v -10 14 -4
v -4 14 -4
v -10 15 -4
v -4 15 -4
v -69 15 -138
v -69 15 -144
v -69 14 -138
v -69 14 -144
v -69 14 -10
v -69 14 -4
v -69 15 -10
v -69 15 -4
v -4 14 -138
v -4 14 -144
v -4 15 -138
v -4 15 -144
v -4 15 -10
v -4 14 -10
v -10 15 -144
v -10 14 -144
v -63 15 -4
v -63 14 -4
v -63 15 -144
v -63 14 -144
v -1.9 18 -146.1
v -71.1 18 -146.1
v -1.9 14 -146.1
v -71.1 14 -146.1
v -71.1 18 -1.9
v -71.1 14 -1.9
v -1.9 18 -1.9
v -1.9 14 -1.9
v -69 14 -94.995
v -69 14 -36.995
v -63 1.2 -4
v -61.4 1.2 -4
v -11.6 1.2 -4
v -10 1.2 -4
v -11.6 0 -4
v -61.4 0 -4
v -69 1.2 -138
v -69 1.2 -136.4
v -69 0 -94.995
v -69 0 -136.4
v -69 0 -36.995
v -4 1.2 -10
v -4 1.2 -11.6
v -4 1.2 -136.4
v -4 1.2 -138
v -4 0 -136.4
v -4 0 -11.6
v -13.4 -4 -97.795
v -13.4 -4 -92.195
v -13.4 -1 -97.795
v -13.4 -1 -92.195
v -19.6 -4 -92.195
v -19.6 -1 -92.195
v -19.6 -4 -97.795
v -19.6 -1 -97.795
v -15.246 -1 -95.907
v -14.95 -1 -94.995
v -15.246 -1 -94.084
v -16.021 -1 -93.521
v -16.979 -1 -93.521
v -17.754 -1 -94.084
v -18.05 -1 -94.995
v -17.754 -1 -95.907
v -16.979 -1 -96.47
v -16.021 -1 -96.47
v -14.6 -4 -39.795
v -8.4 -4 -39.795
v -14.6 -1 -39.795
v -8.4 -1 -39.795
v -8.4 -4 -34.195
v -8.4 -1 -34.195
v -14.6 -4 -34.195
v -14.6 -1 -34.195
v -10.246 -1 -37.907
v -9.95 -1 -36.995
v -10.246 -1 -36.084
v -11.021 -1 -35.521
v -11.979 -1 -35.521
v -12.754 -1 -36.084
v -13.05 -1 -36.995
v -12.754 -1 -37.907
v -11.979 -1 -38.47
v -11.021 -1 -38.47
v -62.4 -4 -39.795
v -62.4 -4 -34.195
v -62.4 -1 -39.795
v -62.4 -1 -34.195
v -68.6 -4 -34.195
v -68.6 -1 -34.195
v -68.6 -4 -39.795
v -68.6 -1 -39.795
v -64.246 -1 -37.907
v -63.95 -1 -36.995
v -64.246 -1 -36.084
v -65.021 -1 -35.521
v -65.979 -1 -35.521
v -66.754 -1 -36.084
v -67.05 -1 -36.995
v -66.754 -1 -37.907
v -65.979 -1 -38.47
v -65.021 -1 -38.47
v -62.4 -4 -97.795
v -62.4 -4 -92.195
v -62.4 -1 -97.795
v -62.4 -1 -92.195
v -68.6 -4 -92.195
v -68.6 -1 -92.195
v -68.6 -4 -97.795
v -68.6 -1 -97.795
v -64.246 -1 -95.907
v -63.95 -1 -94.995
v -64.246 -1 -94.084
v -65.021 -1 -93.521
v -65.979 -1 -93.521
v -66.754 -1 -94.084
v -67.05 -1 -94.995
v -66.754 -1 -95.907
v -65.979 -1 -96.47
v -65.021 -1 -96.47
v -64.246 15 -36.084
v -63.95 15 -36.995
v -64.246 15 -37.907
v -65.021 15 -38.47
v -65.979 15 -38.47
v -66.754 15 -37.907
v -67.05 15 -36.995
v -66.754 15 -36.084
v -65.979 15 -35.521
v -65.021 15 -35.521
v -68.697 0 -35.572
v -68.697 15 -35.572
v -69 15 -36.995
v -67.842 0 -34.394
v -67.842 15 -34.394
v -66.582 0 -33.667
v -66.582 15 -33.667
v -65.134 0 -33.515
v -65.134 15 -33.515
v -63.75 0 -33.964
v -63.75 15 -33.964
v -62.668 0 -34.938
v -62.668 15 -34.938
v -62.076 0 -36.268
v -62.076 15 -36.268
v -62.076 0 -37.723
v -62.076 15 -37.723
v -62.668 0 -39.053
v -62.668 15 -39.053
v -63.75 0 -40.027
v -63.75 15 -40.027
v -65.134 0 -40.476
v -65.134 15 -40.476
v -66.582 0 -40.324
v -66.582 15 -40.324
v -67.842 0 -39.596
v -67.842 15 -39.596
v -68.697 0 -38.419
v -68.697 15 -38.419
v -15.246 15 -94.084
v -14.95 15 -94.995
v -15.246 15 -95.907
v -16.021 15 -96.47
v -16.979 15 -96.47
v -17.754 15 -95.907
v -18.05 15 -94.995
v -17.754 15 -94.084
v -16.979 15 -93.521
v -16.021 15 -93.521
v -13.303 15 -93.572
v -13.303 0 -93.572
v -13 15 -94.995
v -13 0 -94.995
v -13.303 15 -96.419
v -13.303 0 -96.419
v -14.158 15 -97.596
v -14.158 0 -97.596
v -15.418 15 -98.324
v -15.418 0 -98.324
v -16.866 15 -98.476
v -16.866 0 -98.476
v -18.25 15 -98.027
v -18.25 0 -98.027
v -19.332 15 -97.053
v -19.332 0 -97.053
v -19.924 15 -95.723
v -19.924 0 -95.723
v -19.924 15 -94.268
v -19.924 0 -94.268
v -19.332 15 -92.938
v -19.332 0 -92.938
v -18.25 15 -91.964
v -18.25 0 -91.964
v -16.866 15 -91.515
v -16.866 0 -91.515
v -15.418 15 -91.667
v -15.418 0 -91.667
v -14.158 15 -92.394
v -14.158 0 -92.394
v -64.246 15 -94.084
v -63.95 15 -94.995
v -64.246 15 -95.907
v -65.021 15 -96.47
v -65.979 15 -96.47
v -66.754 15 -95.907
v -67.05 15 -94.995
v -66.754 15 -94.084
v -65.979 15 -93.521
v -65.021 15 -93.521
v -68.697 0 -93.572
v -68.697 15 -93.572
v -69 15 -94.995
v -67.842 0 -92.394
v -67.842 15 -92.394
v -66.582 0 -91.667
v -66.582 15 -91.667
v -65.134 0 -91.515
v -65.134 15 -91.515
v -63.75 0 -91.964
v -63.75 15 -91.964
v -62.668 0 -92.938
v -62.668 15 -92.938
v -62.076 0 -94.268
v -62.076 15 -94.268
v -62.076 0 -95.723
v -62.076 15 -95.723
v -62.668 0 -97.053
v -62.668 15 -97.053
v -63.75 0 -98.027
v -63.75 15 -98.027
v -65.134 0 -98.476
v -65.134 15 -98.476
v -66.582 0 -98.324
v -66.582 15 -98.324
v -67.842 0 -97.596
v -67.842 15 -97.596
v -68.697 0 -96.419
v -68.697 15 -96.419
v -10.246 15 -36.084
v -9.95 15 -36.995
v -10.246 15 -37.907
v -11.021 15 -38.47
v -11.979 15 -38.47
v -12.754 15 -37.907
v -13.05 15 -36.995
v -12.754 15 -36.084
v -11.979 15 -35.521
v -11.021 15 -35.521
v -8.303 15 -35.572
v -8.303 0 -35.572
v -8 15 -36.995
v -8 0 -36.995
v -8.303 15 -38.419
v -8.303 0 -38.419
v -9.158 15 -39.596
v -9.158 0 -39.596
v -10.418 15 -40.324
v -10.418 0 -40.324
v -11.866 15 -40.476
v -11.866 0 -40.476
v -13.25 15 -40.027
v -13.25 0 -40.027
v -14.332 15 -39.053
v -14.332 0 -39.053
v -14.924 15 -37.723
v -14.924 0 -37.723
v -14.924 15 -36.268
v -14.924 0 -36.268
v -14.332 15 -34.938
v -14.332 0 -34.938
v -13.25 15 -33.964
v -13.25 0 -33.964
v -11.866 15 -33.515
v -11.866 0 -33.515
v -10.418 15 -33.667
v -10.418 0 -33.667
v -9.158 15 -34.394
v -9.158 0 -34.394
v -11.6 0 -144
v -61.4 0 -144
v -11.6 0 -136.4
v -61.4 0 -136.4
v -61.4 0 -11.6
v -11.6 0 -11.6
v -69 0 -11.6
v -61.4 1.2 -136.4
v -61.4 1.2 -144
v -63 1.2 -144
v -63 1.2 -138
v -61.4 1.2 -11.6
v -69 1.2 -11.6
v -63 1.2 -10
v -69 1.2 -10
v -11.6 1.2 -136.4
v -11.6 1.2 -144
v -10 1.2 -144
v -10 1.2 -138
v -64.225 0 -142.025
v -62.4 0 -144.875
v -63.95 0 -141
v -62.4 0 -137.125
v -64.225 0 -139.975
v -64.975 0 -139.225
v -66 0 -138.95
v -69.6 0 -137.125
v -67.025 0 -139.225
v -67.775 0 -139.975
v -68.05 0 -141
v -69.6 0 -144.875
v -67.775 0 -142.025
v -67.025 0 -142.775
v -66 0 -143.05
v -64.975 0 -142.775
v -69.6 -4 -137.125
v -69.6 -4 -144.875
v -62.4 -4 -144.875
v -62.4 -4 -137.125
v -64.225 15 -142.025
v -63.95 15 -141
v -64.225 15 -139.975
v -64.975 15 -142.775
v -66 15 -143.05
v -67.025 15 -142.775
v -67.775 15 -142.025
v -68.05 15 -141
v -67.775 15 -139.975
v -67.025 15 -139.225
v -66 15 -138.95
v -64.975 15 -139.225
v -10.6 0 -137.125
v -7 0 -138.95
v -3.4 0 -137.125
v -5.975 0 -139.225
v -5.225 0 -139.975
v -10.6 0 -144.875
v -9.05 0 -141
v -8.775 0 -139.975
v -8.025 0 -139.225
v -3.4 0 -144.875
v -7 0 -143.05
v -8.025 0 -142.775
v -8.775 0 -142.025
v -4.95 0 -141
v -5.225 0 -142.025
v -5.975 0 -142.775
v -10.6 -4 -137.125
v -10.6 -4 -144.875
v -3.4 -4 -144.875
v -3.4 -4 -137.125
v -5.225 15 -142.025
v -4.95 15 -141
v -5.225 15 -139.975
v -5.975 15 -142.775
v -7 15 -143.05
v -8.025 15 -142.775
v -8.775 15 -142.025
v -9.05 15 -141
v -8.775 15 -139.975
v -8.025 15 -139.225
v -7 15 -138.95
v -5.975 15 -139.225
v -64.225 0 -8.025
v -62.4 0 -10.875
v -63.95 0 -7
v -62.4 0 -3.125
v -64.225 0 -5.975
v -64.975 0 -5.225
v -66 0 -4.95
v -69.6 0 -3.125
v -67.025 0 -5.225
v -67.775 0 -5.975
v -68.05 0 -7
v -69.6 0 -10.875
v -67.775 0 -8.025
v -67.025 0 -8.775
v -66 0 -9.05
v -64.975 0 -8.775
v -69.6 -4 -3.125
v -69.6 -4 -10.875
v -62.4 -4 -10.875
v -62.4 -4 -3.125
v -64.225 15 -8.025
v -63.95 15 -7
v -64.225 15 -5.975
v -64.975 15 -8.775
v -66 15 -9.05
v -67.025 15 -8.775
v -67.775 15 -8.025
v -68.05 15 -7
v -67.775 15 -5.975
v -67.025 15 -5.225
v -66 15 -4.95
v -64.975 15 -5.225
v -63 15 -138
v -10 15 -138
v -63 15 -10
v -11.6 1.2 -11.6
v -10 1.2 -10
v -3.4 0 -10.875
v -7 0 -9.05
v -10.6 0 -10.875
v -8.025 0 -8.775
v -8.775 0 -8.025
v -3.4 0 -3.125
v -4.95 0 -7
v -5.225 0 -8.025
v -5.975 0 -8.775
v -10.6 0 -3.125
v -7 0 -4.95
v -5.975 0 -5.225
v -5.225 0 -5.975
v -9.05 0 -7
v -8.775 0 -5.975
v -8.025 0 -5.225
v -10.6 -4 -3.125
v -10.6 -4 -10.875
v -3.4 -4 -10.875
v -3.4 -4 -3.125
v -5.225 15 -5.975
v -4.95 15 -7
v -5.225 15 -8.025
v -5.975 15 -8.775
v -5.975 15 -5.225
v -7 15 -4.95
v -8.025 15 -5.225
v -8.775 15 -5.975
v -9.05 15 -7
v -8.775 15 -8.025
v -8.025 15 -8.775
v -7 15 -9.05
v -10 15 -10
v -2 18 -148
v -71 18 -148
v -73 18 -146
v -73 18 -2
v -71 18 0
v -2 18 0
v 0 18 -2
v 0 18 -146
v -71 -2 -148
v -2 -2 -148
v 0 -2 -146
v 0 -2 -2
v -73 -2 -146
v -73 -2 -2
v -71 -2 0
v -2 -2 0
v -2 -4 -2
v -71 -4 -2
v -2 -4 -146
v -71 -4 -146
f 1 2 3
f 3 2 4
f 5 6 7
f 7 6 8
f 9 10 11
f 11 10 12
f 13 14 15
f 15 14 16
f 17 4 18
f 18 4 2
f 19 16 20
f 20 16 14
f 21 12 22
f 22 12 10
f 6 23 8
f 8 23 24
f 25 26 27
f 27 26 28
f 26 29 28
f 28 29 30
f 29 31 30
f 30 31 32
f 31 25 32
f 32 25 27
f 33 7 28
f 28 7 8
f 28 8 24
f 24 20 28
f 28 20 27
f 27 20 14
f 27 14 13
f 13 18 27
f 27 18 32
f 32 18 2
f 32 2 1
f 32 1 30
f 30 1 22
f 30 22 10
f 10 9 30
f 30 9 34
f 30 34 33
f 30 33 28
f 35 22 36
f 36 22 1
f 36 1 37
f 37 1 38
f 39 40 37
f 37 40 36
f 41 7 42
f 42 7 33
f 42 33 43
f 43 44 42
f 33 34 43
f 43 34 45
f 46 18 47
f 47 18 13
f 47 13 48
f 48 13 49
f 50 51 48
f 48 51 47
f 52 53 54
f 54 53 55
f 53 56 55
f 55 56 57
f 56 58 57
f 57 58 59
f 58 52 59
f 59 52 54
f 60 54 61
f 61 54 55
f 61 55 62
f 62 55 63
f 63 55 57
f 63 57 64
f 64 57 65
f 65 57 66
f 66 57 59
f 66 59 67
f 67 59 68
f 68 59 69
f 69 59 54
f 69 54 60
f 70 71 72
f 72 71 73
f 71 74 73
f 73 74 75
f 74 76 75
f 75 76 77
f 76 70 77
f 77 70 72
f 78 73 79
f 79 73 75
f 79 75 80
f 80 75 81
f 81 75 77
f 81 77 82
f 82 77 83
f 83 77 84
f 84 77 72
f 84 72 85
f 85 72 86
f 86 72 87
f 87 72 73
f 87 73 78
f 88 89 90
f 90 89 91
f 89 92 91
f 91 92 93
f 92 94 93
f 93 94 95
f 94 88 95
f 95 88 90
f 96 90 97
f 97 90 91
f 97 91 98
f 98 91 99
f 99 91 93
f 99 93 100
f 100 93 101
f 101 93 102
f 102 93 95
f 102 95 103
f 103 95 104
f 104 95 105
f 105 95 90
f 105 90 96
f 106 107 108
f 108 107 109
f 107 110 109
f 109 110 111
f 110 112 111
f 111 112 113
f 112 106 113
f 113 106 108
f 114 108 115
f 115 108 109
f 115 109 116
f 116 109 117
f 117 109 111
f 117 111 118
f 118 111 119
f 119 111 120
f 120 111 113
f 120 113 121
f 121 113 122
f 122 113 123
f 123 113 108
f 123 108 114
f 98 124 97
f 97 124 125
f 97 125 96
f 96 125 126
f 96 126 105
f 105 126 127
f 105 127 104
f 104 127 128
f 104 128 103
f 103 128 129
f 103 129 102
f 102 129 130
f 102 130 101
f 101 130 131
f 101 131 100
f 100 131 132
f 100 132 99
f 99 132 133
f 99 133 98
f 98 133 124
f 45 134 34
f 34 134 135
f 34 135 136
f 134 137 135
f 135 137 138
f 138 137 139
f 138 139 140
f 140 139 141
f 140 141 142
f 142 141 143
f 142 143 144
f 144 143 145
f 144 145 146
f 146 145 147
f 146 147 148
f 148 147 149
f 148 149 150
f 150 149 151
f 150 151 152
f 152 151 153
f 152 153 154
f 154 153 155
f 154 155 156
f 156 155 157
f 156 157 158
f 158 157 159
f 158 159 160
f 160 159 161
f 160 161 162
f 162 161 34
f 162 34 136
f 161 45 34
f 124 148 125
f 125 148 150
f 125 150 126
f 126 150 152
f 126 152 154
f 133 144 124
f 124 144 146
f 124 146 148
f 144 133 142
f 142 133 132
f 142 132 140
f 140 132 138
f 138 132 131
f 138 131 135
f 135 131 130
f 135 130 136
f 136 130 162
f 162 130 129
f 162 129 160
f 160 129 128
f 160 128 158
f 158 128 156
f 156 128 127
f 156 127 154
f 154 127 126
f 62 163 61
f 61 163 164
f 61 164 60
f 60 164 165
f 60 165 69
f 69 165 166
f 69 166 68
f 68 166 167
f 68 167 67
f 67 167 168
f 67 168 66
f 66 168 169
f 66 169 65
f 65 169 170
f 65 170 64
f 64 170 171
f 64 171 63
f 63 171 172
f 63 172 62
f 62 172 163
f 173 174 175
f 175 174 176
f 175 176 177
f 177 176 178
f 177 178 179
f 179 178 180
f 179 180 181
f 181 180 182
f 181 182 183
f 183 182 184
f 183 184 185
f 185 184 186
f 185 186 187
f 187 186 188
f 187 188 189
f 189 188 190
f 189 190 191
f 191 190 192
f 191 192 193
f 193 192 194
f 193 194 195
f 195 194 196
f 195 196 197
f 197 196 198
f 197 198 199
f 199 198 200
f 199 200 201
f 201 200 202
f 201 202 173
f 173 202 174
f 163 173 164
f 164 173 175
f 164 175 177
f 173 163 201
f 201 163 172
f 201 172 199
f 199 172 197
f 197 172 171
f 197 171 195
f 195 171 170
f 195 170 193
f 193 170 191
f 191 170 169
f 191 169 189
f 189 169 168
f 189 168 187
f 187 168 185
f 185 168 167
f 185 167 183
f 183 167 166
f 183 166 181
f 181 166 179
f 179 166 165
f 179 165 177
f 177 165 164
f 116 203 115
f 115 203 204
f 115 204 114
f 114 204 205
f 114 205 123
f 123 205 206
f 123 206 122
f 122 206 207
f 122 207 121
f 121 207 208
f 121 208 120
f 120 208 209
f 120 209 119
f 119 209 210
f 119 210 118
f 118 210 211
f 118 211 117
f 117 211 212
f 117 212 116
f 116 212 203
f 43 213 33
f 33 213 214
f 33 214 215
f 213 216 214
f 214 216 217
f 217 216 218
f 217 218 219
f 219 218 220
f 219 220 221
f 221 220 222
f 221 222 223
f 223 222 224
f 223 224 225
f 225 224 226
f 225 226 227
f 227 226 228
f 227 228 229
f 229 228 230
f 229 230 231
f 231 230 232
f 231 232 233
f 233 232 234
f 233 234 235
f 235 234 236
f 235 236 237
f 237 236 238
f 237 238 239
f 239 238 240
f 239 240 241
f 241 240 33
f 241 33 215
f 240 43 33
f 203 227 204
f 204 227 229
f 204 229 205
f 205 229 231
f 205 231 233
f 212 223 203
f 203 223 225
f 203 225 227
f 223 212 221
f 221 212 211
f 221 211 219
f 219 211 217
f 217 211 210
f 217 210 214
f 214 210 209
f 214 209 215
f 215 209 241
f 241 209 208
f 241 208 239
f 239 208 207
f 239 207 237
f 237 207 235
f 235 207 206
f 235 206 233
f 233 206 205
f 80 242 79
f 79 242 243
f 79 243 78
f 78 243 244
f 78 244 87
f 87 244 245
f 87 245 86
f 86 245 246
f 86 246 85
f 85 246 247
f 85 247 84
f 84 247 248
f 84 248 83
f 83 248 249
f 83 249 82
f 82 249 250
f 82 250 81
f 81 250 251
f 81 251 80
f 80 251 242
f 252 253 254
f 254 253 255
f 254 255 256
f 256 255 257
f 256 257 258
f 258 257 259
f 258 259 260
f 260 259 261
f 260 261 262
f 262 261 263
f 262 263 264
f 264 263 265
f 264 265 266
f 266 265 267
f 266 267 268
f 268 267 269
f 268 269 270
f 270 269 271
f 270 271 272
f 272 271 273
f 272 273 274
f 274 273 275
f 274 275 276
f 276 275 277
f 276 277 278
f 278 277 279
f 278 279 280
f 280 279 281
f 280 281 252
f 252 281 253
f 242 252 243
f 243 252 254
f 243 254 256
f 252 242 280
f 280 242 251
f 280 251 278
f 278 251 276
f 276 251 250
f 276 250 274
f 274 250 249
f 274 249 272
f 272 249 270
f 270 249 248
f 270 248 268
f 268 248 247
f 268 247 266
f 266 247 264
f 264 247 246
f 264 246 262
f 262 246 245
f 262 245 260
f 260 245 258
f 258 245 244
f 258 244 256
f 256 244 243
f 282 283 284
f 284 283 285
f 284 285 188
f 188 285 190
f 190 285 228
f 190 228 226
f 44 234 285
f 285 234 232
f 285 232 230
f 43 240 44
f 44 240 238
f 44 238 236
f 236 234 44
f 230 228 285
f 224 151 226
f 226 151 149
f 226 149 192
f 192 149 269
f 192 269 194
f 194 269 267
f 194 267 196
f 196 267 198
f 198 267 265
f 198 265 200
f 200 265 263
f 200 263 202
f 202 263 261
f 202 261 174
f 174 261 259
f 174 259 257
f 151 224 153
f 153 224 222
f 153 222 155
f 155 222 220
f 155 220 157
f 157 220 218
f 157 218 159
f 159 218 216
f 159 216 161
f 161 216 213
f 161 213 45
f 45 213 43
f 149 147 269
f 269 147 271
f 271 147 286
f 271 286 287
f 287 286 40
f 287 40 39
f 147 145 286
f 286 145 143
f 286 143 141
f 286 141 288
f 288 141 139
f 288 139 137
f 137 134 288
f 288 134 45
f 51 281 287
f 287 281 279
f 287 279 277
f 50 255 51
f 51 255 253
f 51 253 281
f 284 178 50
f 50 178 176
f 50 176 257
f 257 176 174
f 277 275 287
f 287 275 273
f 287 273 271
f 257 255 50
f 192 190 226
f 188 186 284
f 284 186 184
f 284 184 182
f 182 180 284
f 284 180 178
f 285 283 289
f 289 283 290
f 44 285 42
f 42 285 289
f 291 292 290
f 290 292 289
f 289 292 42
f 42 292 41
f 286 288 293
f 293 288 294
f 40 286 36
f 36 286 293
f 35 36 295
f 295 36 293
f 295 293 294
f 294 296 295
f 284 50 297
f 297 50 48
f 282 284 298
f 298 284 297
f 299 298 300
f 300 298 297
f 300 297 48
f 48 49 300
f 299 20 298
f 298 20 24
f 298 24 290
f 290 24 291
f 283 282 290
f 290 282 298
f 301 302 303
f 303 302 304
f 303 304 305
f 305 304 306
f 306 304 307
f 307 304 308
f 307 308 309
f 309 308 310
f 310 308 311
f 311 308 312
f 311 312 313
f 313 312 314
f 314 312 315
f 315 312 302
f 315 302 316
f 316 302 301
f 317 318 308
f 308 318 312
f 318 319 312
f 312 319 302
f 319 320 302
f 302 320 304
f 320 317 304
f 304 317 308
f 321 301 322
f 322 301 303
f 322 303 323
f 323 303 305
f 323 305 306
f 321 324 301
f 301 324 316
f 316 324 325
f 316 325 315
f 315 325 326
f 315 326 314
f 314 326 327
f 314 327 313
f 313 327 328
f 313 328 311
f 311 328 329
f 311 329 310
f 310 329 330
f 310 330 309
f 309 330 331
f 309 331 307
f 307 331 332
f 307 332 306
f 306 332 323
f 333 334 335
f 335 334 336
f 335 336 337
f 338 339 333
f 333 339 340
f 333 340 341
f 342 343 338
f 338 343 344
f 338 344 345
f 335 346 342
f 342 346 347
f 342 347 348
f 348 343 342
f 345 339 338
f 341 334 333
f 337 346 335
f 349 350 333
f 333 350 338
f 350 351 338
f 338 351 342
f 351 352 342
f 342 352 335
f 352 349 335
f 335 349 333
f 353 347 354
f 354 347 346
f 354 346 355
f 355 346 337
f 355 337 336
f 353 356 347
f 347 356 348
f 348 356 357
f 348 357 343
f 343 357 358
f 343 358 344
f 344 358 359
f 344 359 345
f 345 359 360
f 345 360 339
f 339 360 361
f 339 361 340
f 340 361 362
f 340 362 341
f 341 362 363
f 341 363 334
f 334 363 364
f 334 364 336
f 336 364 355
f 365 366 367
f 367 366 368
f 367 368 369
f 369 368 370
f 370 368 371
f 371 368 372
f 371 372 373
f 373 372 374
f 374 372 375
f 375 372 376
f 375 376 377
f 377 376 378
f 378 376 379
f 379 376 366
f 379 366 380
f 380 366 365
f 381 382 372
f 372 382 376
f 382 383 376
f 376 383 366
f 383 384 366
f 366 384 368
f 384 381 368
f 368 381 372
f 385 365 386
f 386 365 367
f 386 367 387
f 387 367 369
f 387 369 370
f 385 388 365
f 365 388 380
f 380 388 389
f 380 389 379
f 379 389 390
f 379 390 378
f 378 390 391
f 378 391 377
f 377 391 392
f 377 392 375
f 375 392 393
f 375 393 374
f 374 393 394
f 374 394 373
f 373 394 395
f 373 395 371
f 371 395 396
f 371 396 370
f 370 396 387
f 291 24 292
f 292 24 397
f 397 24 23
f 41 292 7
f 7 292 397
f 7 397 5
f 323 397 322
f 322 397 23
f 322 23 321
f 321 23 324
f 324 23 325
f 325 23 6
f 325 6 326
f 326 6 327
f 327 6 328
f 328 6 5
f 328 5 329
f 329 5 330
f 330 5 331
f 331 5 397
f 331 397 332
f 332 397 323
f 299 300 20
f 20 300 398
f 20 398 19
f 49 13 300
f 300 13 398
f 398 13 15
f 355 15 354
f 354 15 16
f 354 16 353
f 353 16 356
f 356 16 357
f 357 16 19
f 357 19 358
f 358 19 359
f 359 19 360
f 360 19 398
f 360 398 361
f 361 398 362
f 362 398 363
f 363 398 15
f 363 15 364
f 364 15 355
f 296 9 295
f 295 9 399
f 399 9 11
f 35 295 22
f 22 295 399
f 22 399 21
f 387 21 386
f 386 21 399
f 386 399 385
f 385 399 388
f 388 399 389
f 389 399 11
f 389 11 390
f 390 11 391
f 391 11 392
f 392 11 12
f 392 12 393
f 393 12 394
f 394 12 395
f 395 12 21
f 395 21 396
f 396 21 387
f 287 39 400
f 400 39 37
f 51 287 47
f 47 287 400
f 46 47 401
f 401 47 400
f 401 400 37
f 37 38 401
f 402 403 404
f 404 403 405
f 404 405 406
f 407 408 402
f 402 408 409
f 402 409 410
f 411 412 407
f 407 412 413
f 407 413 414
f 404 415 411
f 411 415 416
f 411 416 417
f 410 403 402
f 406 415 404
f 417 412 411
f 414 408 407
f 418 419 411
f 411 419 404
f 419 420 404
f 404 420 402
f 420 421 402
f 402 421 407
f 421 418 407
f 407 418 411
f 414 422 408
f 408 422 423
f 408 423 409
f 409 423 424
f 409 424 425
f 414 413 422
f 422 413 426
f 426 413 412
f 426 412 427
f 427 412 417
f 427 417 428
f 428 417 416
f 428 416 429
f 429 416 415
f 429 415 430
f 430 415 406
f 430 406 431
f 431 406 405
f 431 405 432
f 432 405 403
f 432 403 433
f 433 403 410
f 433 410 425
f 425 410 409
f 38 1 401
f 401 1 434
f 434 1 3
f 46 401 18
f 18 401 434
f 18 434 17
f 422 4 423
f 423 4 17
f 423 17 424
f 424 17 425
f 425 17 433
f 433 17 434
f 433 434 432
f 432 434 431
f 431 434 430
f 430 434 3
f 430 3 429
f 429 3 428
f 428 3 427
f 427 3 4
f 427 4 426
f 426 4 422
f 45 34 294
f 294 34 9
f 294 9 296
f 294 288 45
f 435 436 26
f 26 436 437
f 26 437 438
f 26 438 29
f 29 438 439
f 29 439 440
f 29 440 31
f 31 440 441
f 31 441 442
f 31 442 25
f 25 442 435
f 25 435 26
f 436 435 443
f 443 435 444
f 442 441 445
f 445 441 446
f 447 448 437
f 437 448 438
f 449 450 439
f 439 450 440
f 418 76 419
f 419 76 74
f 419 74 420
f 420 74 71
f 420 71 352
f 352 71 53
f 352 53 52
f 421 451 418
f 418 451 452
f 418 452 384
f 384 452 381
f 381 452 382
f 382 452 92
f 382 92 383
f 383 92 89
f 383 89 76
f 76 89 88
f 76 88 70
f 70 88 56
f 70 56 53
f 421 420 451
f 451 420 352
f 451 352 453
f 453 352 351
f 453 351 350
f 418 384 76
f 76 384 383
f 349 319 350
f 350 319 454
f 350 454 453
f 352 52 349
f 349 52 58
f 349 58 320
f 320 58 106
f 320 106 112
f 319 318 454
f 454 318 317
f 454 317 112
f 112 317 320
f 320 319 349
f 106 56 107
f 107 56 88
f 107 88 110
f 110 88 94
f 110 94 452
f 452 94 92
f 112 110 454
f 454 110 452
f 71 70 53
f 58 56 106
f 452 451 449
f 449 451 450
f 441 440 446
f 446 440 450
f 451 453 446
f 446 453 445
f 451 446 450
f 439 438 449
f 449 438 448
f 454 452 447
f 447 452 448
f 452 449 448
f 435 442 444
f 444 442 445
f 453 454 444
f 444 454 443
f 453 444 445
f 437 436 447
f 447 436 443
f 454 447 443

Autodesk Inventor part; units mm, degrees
ref_plane "YZ Plane" through (0, 0, 0) normal (1, 0, 0) x (0, 1, 0)
ref_plane "XZ Plane" through (0, 0, 0) normal (0, 1, 0) x (-1, 0, 0)
ref_plane "XY Plane" through (0, 0, 0) normal (0, 0, 1) x (1, 0, 0)
sketch "Sketch1" plane through (0, 0, 0) normal (0, 1, 0) x (-1, 0, 0)
  line L0 (0, 0) -> (73, 0)
  line L1 (73, 0) -> (73, -148)
  line L2 (73, -148) -> (0, -148)
  line L3 (0, -148) -> (0, 0)
  dimension "d0" = 73
  dimension "d1" = 148
extrude "Extrusion1" add sketch "Sketch1" against normal blind 4
sketch "Sketch2" plane through (0, 0, 0) normal (0, 1, 0) x (1, 0, 0)
  line L0 (-73, 148) -> (0, 148) projected
  line L1 (0, 148) -> (0, 0) projected
  line L2 (0, 148) -> (0, 0)
  line L3 (0, 0) -> (-73, 0) projected
  line L4 (0, 0) -> (-73, 0)
  line L5 (-73, 0) -> (-73, 148)
  line L6 (0, 148) -> (0, 144) construction
  line L7 (0, 148) -> (0, 0) construction
  line L8 (0, 144) -> (-4, 144) construction
  line L9 (-4, 144) -> (-69, 144)
  line L10 (-69, 144) -> (-69, 4)
  line L11 (-69, 4) -> (-4, 4)
  line L12 (-4, 4) -> (-4, 144)
  dimension "d4" = 4
  dimension "d5" = 4
  dimension "d6" = 90
  dimension "d7" = 65
  dimension "d8" = 140
extrude "Extrusion2" add sketch "Sketch2" along normal blind 18
sketch "Sketch4" plane through (0, 0, 0) normal (0, 1, 0) x (1, 0, 0)
  line L0 (-4, 4) -> (-4, 144) projected
  line L1 (-4, 4) -> (-10, 4)
  line L2 (-10, 4) -> (-10, 10)
  line L3 (-10, 10) -> (-4, 10)
  line L4 (-4, 10) -> (-4, 4)
  point P0 (0, 0)
  dimension "d17" = 6
  dimension "d18" = 6
extrude "Extrusion4" add sketch "Sketch4" along normal blind 15
sketch "Sketch9" plane through (0, -4, 0) normal (0, -1, 0) x (1, 0, 0)
  line L0 (0, 0) -> (0, -148) construction
  line L1 (0, 0) -> (-7, 0) construction
  line L2 (0, 0) -> (-73, 0) construction
  line L3 (-7, 0) -> (-7, -7) construction
  circle A0 centre (-7, -7) radius 2.05
  dimension "d60" = 7
  dimension "d61" = 7
  dimension "d62" = 4.1
extrude "Extrusion10" cut sketch "Sketch9" against normal blind 20
sketch "Sketch10" plane through (0, -4, 0) normal (0, -1, 0) x (1, 0, 0)
  circle A0 centre (-7, -7) radius 2.05 construction
  line L0 (-7, -7) -> (-7, 0) construction
  line L1 (0, 0) -> (-73, 0) construction
  line L2 (-7, -7) -> (-10.6, -7) construction
  line L3 (-7, -7) -> (-3.4, -7) construction
  line L4 (-7, -7) -> (-7, -10.875) construction
  line L5 (-7, -7) -> (-7, -3.125) construction
  line L6 (-7, -3.125) -> (-10.6, -3.125)
  line L7 (-10.6, -3.125) -> (-10.6, -10.875)
  line L8 (-10.6, -10.875) -> (-3.4, -10.875)
  line L9 (-3.4, -10.875) -> (-3.4, -3.125)
  line L10 (-3.4, -3.125) -> (-7, -3.125)
  dimension "d65" = 3.6
  dimension "d66" = 3.6
  dimension "d67" = 3.875
  dimension "d68" = 3.875
  dimension "d69" = 7.75
  dimension "d70" = 7.2
extrude "Extrusion11" cut sketch "Sketch10" against normal blind 4
sketch "Sketch11" plane through (0, 0, 0) normal (0, 1, 0) x (1, 0, 0)
  line L0 (-10, 10) -> (-10, 4) projected
  line L1 (-10, 4) -> (-11.6, 4)
  line L2 (-69, 4) -> (-10, 4) projected
  line L3 (-11.6, 4) -> (-11.6, 11.6)
  line L4 (-11.6, 4) -> (-4, 4) construction
  line L5 (-11.6, 11.6) -> (-4, 11.6)
  line L6 (-4, 10.875) -> (-4, 144) projected
  line L7 (-4, 10) -> (-10, 10)
  line L8 (-10, 4) -> (-10, 10)
  line L9 (-10, 10) -> (-4, 10) projected
  line L10 (-4, 10) -> (-4, 11.6)
  point P0 (0, 0)
  dimension "d73" = 1.6
  dimension "d75" = 90
  dimension "d76" = 1.6
extrude "Extrusion12" add sketch "Sketch11" along normal blind 1.2
pattern_linear "Rectangular Pattern3" count 2 spacing 59 along (-1, 0, 0) count 2 spacing 134 along (0, 0, -1) of "Extrusion4", "Extrusion10", "Extrusion11"
sketch "Sketch12" plane through (0, 0, 0) normal (0, 1, 0) x (1, 0, 0)
  line L0 (-63, 4) -> (-10, 4) projected
  line L1 (-63, 4) -> (-61.4, 4)
  line L2 (-63, 4) -> (-63, 10) projected
  line L3 (-63, 4) -> (-63, 10)
  line L4 (-63, 10) -> (-69, 10)
  line L5 (-69, 10) -> (-69, 11.6)
  line L6 (-69, 11.6) -> (-61.4, 11.6)
  line L7 (-61.4, 11.6) -> (-61.4, 4)
  line L8 (-10, 144) -> (-63, 144) projected
  line L9 (-63, 144) -> (-61.4, 144)
  line L10 (-63, 138) -> (-63, 144) projected
  line L11 (-63, 144) -> (-63, 138)
  line L12 (-69, 138) -> (-63, 138) projected
  line L13 (-63, 138) -> (-69, 138)
  line L14 (-69, 138) -> (-69, 136.4)
  line L15 (-69, 137.125) -> (-69, 10.875) projected
  line L16 (-69, 136.4) -> (-61.4, 136.4)
  line L17 (-61.4, 136.4) -> (-61.4, 144)
  line L18 (-10, 144) -> (-10.6, 144) projected
  line L19 (-10, 144) -> (-11.6, 144)
  line L20 (-10, 144) -> (-8.4, 144) construction
  line L21 (-10, 144) -> (-10, 138) projected
  line L22 (-4, 138) -> (-10, 138) projected
  line L23 (-10, 144) -> (-10, 138)
  line L24 (-10, 138) -> (-4, 138)
  line L25 (-4, 138) -> (-4, 136.4)
  line L26 (-4, 10) -> (-4, 138) projected
  line L27 (-4, 136.4) -> (-11.6, 136.4)
  line L28 (-11.6, 136.4) -> (-11.6, 144)
  point P0 (0, 0)
  dimension "d85" = 1.6
  dimension "d86" = 1.6
  dimension "d87" = 90
  dimension "d88" = 1.6
  dimension "d89" = 1.6
  dimension "d90" = 90
  dimension "d91" = 1.6
  dimension "d92" = 180
  dimension "d93" = 1.6
  dimension "d94" = 90
extrude "Extrusion13" add sketch "Sketch12" along normal blind 1.2
sketch "Sketch13" plane through (0, 0, 0) normal (0, 1, 0) x (1, 0, 0)
  line L0 (-4, 10) -> (-4, 138) construction
  line L1 (-4, 11.4955) -> (-4, 31.4955) construction
  line L2 (-4, 31.4955) -> (-8, 31.4955) construction
  line L3 (-8, 31.4955) -> (-69, 31.4955) construction
  line L4 (-69, 31.4955) -> (-69, 100.4955) construction
  line L5 (-69, 100.4955) -> (-8, 100.4955) construction
  line L6 (-8, 100.4955) -> (-8, 31.4955) construction
  line L7 (-69, 100.4955) -> (-69, 94.9955) construction
  line L8 (-69, 138) -> (-69, 10) construction
  line L9 (-69, 94.9955) -> (-16.5, 94.9955) construction
  circle A0 centre (-16.5, 94.9955) radius 3.5
  line L10 (-69, 94.9955) -> (-65.5, 94.9955) construction
  circle A1 centre (-65.5, 94.9955) radius 3.5
  line L11 (-65.5, 94.9955) -> (-2, 94.9955) construction
  line L12 (-65.5, 94.9955) -> (-65.5, 36.9955) construction
  circle A2 centre (-65.5, 36.9955) radius 3.5
  line L13 (-69, 31.4955) -> (-11.5, 31.4955) construction
  line L14 (-11.5, 31.4955) -> (-11.5, 36.9955) construction
  circle A3 centre (-11.5, 36.9955) radius 3.5
  circle A4 centre (-65.5, 36.9955) radius 1.55
  circle A5 centre (-16.5, 94.9955) radius 1.55
  circle A6 centre (-11.5, 36.9955) radius 1.55
  circle A7 centre (-65.5, 94.9955) radius 1.55
  point P0 (0, 0)
  dimension "d97" = 20
  dimension "d98" = 4
  dimension "d99" = 61
  dimension "d100" = 69
  dimension "d101" = 5.5
  dimension "d102" = 52.5
  dimension "d103" = 90
  dimension "d104" = 7
  dimension "d105" = 3.5
  dimension "d106" = 7
  dimension "d109" = 58
  dimension "d110" = 7
  dimension "d111" = 57.5
  dimension "d112" = 5.5
  dimension "d113" = 7
  dimension "d114" = 3.1
  dimension "d116" = 3.1
  dimension "d117" = 3.1
  dimension "d118" = 3.1
extrude "Extrusion14" add sketch "Sketch13" along normal blind 15
sketch "Sketch14" plane through (-65.5, 0, -36.9955) normal (0, 1, 0) x (1, 0, 0)
  circle A0 centre (49, 58) radius 1.55 projected
  circle A1 centre (49, 58) radius 1.55
  circle A2 centre (0, 58) radius 1.55 projected
  circle A3 centre (0, 58) radius 1.55
  circle A4 centre (0, 0) radius 1.55
  circle A5 centre (54, 0) radius 1.55 projected
  circle A6 centre (54, 0) radius 1.55
  point P0 (65.5, -36.9955)
  dimension "d121" = 3.1
extrude "Extrusion15" cut sketch "Sketch14" against normal blind 100
sketch "Sketch15" plane through (0, -4, 0) normal (0, -1, 0) x (1, 0, 0)
  circle A0 centre (-11.5, -36.9955) radius 1.55 construction
  line L0 (-11.5, -36.9955) -> (-11.5, -34.1955) construction
  line L1 (-11.5, -34.1955) -> (-14.6, -34.1955) construction
  line L2 (-14.6, -34.1955) -> (-14.6, -39.7955)
  line L3 (-14.6, -39.7955) -> (-8.4, -39.7955)
  line L4 (-14.6, -34.1955) -> (-8.4, -34.1955)
  line L5 (-8.4, -34.1955) -> (-8.4, -39.7955)
  circle A1 centre (-65.5, -36.9955) radius 1.55 construction
  line L6 (-65.5, -36.9955) -> (-62.4, -36.9955) construction
  line L7 (-62.4, -36.9955) -> (-62.4, -39.7955) construction
  line L8 (-62.4, -39.7955) -> (-68.6, -39.7955)
  line L9 (-68.6, -39.7955) -> (-68.6, -34.1955)
  line L10 (-68.6, -34.1955) -> (-62.4, -34.1955)
  line L11 (-62.4, -34.1955) -> (-62.4, -39.7955)
  circle A2 centre (-16.5, -94.9955) radius 1.55 construction
  line L12 (-16.5, -94.9955) -> (-16.5, -97.7955) construction
  line L13 (-16.5, -97.7955) -> (-13.4, -97.7955) construction
  line L14 (-13.4, -97.7955) -> (-19.6, -97.7955)
  line L15 (-19.6, -97.7955) -> (-19.6, -92.1955)
  line L16 (-19.6, -92.1955) -> (-13.4, -92.1955)
  line L17 (-13.4, -92.1955) -> (-13.4, -97.7955)
  line L18 (-65.5, -94.9955) -> (-65.5, -97.7955) construction
  line L19 (-65.5, -97.7955) -> (-62.4, -97.7955) construction
  line L20 (-62.4, -97.7955) -> (-68.6, -97.7955)
  line L21 (-68.6, -97.7955) -> (-68.6, -92.1955)
  line L22 (-68.6, -92.1955) -> (-62.4, -92.1955)
  line L23 (-62.4, -92.1955) -> (-62.4, -97.7955)
  point P0 (0, 0)
  dimension "d124" = 2.8
  dimension "d125" = 3.1
  dimension "d126" = 5.6
  dimension "d127" = 6.2
  dimension "d130" = 3.1
  dimension "d131" = 2.8
  dimension "d132" = 6.2
  dimension "d133" = 5.6
  dimension "d134" = 2.8
  dimension "d135" = 3.1
  dimension "d136" = 6.2
  dimension "d137" = 5.6
  dimension "d138" = 2.8
  dimension "d139" = 3.1
  dimension "d140" = 6.2
  dimension "d141" = 5.6
extrude "Extrusion17" cut sketch "Sketch15" against normal blind 3
sketch "Sketch17" plane through (0, 18, 0) normal (0, 1, 0) x (1, 0, 0)
  line L0 (-69, 4) -> (-69, 144) projected
  line L1 (-4, 144) -> (-4, 4) projected
  line L2 (-69, 144) -> (-4, 144)
  line L3 (-4, 144) -> (-4, 4)
  line L4 (-4, 4) -> (-69, 4)
  line L5 (-69, 4) -> (-69, 144)
  line L6 (-4, 4) -> (-5.9, 4) construction
  line L7 (-5.9, 4) -> (-5.9, 2.1828) construction
  line L8 (-5.9, 2.1828) -> (-4, 2.1828) construction
  line L9 (-4, 2.1828) -> (-4, 4) construction
  line L10 (-4, 4) -> (-1.9, 4) construction
  line L11 (-1.9, 4) -> (-1.9, 1.9) construction
  line L12 (-69, 144) -> (-71.1, 144) construction
  line L13 (-71.1, 144) -> (-71.1, 146.1) construction
  line L14 (-71.1, 146.1) -> (-1.9, 146.1)
  line L15 (-1.9, 146.1) -> (-1.9, 1.9)
  line L16 (-1.9, 1.9) -> (-71.1, 1.9)
  line L17 (-71.1, 1.9) -> (-71.1, 146.1)
  point P0 (0, 0)
  dimension "d144" = 1.9
  dimension "d145" = 2.1
  dimension "d146" = 2.1
  dimension "d147" = 2.1
  dimension "d148" = 2.1
extrude "Extrusion18" cut sketch "Sketch17" against normal blind 4
chamfer "Chamfer1" distance 2 angle 45 8 edges at (-36.5, -4, 0) (-73, 7, 0) (-73, -4, -74) (0, 7, 0) (0, -4, -74) (0, 7, -148) (-36.5, -4, -148) (-73, 7, -148)
properties part number "mangOH bottom"
